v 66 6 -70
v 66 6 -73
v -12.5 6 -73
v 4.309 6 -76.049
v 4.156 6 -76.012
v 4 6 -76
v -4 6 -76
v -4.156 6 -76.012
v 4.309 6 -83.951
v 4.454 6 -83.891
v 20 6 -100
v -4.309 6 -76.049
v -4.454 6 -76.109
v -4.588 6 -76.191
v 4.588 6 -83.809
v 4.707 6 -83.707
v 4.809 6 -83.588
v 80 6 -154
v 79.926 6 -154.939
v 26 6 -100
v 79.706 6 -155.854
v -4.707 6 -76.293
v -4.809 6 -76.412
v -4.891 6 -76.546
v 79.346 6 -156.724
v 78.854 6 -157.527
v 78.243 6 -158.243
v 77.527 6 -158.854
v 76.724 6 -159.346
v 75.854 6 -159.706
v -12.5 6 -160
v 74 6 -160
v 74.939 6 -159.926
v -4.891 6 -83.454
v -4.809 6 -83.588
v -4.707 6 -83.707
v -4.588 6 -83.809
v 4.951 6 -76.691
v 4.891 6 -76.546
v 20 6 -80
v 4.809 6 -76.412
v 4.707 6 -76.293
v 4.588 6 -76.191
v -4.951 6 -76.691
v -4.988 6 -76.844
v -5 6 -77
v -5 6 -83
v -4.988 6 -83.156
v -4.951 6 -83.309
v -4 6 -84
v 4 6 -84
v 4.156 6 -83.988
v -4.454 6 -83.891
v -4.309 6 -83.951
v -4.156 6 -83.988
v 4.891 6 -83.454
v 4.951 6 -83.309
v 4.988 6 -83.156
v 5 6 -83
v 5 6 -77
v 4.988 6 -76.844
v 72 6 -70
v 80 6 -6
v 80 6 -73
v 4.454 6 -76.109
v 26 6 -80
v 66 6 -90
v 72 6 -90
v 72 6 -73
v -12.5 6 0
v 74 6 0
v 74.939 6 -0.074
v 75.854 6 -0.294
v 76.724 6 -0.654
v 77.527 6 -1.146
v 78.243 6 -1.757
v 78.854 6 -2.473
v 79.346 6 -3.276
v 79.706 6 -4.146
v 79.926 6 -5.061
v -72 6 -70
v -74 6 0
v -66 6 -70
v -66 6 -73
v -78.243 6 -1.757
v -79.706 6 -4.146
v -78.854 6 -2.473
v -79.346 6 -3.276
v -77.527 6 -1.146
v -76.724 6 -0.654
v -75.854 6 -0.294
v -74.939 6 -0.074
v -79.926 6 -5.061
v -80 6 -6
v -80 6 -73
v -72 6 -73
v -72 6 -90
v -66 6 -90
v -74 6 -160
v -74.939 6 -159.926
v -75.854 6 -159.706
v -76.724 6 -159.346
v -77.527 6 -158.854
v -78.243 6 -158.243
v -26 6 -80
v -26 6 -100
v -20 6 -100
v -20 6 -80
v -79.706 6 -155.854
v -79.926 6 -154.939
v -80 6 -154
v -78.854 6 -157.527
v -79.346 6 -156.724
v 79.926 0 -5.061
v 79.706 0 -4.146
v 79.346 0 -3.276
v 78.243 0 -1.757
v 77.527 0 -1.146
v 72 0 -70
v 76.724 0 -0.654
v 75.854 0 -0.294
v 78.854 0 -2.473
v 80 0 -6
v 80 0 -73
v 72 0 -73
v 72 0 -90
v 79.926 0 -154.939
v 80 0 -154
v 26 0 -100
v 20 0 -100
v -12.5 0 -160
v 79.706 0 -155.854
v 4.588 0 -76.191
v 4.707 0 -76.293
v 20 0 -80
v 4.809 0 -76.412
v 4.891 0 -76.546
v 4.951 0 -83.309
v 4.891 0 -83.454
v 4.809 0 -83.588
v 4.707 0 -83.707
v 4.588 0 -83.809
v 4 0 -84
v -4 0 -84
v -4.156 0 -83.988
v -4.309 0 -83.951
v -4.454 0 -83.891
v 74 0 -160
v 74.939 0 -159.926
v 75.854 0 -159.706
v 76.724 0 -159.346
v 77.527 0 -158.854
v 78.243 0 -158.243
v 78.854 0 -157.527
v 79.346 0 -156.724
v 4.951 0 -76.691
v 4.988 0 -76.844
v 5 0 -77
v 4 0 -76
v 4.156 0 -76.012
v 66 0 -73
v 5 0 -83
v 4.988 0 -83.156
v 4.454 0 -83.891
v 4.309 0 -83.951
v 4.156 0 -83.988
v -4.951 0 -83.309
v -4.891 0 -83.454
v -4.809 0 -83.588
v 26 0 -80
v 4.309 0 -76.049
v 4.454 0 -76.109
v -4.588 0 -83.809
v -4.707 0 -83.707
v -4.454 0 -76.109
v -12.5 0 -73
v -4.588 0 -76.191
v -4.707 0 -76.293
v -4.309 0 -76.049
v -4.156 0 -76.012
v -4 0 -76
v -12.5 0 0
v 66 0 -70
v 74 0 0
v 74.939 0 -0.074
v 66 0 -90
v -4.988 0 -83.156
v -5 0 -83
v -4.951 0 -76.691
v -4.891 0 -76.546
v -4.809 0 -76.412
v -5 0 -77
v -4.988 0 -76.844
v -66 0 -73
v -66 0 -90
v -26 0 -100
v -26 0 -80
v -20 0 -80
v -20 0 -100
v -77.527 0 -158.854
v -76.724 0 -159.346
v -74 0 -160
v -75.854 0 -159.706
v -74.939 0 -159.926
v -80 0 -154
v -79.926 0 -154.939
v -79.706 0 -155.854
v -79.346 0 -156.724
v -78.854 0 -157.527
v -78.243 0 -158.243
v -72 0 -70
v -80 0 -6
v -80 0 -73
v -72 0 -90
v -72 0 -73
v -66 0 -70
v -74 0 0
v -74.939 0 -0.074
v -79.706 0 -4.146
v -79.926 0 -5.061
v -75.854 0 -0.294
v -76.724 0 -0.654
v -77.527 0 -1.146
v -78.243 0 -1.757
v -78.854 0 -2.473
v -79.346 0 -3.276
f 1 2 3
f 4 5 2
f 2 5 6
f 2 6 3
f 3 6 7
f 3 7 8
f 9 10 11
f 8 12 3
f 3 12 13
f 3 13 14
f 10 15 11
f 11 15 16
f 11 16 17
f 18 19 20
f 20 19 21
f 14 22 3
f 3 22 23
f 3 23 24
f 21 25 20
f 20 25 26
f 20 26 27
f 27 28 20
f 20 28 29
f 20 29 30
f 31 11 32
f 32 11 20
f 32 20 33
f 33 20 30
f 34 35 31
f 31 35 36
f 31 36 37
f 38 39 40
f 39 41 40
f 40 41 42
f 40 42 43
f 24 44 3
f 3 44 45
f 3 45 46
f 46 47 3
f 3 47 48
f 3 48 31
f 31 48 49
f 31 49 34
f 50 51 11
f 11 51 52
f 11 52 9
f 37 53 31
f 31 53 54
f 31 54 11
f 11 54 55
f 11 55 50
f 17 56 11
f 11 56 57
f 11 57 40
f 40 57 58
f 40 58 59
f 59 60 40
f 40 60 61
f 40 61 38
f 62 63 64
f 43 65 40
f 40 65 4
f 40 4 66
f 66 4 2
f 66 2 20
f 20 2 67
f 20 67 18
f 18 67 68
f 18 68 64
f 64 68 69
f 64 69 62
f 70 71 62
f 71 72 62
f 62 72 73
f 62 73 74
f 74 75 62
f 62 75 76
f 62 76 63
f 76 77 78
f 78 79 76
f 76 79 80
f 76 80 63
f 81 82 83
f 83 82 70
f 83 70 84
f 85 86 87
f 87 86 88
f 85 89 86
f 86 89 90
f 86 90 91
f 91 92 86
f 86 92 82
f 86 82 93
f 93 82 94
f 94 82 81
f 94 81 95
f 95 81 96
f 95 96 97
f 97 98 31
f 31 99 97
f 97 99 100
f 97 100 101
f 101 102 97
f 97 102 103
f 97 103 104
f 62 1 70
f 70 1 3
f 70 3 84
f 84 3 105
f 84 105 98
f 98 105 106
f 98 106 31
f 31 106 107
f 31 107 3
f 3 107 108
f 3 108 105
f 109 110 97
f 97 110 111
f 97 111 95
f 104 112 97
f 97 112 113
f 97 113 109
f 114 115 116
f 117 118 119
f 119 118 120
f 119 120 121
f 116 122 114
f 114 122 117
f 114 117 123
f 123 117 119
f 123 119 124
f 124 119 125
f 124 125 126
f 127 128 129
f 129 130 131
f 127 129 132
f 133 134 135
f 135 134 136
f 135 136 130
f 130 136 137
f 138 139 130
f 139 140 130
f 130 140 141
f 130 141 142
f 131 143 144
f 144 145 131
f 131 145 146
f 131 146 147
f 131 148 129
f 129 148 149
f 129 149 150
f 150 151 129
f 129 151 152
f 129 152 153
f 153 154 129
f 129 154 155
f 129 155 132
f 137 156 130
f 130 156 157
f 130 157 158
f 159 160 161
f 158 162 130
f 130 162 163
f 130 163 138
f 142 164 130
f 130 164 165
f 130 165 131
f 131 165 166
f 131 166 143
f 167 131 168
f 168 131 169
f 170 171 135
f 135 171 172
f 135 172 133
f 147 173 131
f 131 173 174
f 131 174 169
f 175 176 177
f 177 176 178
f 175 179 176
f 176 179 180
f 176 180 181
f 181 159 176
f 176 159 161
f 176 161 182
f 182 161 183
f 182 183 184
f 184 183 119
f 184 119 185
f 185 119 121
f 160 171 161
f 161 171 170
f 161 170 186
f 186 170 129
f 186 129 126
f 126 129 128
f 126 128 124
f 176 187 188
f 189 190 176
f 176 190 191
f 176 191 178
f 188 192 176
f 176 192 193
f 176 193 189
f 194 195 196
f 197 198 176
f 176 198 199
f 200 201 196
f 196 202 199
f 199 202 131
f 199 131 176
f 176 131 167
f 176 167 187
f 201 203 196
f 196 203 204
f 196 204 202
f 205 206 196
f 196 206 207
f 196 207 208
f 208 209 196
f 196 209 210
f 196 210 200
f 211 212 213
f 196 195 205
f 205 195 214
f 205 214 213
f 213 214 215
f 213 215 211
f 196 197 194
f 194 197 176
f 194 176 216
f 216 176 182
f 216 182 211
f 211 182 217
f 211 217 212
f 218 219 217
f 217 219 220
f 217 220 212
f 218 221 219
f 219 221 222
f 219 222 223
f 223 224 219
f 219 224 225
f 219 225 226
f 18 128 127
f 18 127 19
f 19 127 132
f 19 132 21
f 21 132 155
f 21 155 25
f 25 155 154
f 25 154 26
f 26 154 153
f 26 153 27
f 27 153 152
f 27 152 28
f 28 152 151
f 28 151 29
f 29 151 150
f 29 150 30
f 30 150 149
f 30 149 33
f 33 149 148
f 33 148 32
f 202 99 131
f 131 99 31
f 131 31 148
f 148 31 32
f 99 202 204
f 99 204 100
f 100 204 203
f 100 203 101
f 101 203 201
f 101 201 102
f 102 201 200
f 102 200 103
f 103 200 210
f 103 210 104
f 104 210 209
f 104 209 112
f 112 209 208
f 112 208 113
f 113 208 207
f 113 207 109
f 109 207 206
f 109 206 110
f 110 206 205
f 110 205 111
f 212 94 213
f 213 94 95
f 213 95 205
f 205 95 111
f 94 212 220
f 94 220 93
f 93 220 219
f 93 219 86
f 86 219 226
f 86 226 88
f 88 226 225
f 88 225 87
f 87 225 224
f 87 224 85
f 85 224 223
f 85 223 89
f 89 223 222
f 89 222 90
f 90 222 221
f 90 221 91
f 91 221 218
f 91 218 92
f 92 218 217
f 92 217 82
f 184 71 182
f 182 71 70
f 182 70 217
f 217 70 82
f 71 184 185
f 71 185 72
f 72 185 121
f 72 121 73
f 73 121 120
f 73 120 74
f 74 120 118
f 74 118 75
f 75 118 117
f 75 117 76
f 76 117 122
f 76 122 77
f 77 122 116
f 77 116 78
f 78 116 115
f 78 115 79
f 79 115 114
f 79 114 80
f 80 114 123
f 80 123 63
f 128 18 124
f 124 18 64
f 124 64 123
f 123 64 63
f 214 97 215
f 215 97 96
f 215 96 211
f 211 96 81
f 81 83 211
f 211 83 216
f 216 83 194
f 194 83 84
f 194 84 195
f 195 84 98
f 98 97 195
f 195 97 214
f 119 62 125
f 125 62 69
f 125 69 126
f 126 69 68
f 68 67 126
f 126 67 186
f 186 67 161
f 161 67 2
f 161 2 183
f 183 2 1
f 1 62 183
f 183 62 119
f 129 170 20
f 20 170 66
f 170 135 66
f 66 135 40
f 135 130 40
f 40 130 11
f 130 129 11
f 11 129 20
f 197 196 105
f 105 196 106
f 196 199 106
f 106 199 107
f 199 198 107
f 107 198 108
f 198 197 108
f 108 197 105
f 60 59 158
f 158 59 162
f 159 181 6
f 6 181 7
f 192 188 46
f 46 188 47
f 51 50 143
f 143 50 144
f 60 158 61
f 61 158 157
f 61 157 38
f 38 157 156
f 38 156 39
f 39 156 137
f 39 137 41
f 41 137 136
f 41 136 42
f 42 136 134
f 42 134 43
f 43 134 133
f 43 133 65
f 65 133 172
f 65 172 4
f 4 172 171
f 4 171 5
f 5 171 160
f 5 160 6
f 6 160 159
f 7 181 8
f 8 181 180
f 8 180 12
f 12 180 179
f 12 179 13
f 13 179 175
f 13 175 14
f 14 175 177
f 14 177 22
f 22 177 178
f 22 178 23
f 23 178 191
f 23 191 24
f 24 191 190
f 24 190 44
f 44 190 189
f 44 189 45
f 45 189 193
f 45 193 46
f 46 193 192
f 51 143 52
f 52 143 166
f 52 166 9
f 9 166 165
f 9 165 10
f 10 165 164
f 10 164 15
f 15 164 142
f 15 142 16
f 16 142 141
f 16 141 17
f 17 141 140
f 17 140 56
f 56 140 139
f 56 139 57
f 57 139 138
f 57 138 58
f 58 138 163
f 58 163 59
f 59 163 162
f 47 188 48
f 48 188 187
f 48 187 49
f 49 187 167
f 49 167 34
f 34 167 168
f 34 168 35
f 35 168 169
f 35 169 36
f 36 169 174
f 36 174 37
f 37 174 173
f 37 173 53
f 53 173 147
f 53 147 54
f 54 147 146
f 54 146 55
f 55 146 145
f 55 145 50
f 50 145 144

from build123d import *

# Parameters (mm, degrees)
SKETCH1_W               = 6
SKETCH1_H               = 20
BOSS_EXTRUDE1_DEPTH     = 6
SKETCH2_W               = 6
SKETCH2_H               = 20
CUT_EXTRUDE1_DEPTH      = 179.986032975
CUT_EXTRUDE2_DEPTH      = 179.986032975
CUT_EXTRUDE2_DEPTH_BACK = 179.986032975
SKETCH3_W               = 10
SKETCH3_H               = 8
FILLET1_R               = 1


with BuildPart() as part:
    # Sketch1 → Boss-Extrude1 (new body)
    with BuildSketch(Plane(origin=(0, 0, 0), x_dir=(1, 0, 0), z_dir=(0, 1, 0))):
        with BuildLine():
            Line((-74, 0), (74, 0))
            ThreePointArc((74, 0), (78.242640687, 1.757359313), (80, 6))
            Line((80, 6), (80, 154))
            ThreePointArc((80, 154), (78.242640687, 158.242640687), (74, 160))
            Line((74, 160), (-74, 160))
            ThreePointArc((-74, 160), (-78.242640687, 158.242640687), (-80, 154))
            Line((-80, 154), (-80, 6))
            ThreePointArc((-80, 6), (-78.242640687, 1.757359313), (-74, 0))
        make_face()
        with Locations((-69, 80)):
            Rectangle(SKETCH1_W, SKETCH1_H, mode=Mode.SUBTRACT)
        with Locations((69, 80)):
            Rectangle(SKETCH1_W, SKETCH1_H, mode=Mode.SUBTRACT)
    extrude(amount=BOSS_EXTRUDE1_DEPTH)

    # Sketch2 → Cut-Extrude1 (cut, through all)
    with BuildSketch(Plane(origin=(0, 6, 0), x_dir=(1, 0, 0), z_dir=(0, 1, 0))):
        with Locations((23, 90)):
            Rectangle(SKETCH2_W, SKETCH2_H)
        with Locations((-23, 90)):
            Rectangle(SKETCH2_W, SKETCH2_H)
    extrude(amount=-CUT_EXTRUDE1_DEPTH, mode=Mode.SUBTRACT)

    # Sketch3 → Cut-Extrude2 (cut, two sides: drawn at the far end of the back side and taken through both)
    with BuildSketch(Plane(origin=(0, 6, 0), x_dir=(1, 0, 0), z_dir=(0, 1, 0)).offset(-CUT_EXTRUDE2_DEPTH_BACK)):
        with Locations((0, 80)):
            Rectangle(SKETCH3_W, SKETCH3_H)
    extrude(amount=CUT_EXTRUDE2_DEPTH + CUT_EXTRUDE2_DEPTH_BACK, mode=Mode.SUBTRACT)

    # Fillet1
    fillet1_edges = [part.edges().sort_by_distance(p)[0] for p in [
        (5, 3, -84),
        (5, 3, -76),
        (-5, 3, -76),
        (-5, 3, -84),
    ]]
    fillet(fillet1_edges, radius=FILLET1_R)


solid = part.part
